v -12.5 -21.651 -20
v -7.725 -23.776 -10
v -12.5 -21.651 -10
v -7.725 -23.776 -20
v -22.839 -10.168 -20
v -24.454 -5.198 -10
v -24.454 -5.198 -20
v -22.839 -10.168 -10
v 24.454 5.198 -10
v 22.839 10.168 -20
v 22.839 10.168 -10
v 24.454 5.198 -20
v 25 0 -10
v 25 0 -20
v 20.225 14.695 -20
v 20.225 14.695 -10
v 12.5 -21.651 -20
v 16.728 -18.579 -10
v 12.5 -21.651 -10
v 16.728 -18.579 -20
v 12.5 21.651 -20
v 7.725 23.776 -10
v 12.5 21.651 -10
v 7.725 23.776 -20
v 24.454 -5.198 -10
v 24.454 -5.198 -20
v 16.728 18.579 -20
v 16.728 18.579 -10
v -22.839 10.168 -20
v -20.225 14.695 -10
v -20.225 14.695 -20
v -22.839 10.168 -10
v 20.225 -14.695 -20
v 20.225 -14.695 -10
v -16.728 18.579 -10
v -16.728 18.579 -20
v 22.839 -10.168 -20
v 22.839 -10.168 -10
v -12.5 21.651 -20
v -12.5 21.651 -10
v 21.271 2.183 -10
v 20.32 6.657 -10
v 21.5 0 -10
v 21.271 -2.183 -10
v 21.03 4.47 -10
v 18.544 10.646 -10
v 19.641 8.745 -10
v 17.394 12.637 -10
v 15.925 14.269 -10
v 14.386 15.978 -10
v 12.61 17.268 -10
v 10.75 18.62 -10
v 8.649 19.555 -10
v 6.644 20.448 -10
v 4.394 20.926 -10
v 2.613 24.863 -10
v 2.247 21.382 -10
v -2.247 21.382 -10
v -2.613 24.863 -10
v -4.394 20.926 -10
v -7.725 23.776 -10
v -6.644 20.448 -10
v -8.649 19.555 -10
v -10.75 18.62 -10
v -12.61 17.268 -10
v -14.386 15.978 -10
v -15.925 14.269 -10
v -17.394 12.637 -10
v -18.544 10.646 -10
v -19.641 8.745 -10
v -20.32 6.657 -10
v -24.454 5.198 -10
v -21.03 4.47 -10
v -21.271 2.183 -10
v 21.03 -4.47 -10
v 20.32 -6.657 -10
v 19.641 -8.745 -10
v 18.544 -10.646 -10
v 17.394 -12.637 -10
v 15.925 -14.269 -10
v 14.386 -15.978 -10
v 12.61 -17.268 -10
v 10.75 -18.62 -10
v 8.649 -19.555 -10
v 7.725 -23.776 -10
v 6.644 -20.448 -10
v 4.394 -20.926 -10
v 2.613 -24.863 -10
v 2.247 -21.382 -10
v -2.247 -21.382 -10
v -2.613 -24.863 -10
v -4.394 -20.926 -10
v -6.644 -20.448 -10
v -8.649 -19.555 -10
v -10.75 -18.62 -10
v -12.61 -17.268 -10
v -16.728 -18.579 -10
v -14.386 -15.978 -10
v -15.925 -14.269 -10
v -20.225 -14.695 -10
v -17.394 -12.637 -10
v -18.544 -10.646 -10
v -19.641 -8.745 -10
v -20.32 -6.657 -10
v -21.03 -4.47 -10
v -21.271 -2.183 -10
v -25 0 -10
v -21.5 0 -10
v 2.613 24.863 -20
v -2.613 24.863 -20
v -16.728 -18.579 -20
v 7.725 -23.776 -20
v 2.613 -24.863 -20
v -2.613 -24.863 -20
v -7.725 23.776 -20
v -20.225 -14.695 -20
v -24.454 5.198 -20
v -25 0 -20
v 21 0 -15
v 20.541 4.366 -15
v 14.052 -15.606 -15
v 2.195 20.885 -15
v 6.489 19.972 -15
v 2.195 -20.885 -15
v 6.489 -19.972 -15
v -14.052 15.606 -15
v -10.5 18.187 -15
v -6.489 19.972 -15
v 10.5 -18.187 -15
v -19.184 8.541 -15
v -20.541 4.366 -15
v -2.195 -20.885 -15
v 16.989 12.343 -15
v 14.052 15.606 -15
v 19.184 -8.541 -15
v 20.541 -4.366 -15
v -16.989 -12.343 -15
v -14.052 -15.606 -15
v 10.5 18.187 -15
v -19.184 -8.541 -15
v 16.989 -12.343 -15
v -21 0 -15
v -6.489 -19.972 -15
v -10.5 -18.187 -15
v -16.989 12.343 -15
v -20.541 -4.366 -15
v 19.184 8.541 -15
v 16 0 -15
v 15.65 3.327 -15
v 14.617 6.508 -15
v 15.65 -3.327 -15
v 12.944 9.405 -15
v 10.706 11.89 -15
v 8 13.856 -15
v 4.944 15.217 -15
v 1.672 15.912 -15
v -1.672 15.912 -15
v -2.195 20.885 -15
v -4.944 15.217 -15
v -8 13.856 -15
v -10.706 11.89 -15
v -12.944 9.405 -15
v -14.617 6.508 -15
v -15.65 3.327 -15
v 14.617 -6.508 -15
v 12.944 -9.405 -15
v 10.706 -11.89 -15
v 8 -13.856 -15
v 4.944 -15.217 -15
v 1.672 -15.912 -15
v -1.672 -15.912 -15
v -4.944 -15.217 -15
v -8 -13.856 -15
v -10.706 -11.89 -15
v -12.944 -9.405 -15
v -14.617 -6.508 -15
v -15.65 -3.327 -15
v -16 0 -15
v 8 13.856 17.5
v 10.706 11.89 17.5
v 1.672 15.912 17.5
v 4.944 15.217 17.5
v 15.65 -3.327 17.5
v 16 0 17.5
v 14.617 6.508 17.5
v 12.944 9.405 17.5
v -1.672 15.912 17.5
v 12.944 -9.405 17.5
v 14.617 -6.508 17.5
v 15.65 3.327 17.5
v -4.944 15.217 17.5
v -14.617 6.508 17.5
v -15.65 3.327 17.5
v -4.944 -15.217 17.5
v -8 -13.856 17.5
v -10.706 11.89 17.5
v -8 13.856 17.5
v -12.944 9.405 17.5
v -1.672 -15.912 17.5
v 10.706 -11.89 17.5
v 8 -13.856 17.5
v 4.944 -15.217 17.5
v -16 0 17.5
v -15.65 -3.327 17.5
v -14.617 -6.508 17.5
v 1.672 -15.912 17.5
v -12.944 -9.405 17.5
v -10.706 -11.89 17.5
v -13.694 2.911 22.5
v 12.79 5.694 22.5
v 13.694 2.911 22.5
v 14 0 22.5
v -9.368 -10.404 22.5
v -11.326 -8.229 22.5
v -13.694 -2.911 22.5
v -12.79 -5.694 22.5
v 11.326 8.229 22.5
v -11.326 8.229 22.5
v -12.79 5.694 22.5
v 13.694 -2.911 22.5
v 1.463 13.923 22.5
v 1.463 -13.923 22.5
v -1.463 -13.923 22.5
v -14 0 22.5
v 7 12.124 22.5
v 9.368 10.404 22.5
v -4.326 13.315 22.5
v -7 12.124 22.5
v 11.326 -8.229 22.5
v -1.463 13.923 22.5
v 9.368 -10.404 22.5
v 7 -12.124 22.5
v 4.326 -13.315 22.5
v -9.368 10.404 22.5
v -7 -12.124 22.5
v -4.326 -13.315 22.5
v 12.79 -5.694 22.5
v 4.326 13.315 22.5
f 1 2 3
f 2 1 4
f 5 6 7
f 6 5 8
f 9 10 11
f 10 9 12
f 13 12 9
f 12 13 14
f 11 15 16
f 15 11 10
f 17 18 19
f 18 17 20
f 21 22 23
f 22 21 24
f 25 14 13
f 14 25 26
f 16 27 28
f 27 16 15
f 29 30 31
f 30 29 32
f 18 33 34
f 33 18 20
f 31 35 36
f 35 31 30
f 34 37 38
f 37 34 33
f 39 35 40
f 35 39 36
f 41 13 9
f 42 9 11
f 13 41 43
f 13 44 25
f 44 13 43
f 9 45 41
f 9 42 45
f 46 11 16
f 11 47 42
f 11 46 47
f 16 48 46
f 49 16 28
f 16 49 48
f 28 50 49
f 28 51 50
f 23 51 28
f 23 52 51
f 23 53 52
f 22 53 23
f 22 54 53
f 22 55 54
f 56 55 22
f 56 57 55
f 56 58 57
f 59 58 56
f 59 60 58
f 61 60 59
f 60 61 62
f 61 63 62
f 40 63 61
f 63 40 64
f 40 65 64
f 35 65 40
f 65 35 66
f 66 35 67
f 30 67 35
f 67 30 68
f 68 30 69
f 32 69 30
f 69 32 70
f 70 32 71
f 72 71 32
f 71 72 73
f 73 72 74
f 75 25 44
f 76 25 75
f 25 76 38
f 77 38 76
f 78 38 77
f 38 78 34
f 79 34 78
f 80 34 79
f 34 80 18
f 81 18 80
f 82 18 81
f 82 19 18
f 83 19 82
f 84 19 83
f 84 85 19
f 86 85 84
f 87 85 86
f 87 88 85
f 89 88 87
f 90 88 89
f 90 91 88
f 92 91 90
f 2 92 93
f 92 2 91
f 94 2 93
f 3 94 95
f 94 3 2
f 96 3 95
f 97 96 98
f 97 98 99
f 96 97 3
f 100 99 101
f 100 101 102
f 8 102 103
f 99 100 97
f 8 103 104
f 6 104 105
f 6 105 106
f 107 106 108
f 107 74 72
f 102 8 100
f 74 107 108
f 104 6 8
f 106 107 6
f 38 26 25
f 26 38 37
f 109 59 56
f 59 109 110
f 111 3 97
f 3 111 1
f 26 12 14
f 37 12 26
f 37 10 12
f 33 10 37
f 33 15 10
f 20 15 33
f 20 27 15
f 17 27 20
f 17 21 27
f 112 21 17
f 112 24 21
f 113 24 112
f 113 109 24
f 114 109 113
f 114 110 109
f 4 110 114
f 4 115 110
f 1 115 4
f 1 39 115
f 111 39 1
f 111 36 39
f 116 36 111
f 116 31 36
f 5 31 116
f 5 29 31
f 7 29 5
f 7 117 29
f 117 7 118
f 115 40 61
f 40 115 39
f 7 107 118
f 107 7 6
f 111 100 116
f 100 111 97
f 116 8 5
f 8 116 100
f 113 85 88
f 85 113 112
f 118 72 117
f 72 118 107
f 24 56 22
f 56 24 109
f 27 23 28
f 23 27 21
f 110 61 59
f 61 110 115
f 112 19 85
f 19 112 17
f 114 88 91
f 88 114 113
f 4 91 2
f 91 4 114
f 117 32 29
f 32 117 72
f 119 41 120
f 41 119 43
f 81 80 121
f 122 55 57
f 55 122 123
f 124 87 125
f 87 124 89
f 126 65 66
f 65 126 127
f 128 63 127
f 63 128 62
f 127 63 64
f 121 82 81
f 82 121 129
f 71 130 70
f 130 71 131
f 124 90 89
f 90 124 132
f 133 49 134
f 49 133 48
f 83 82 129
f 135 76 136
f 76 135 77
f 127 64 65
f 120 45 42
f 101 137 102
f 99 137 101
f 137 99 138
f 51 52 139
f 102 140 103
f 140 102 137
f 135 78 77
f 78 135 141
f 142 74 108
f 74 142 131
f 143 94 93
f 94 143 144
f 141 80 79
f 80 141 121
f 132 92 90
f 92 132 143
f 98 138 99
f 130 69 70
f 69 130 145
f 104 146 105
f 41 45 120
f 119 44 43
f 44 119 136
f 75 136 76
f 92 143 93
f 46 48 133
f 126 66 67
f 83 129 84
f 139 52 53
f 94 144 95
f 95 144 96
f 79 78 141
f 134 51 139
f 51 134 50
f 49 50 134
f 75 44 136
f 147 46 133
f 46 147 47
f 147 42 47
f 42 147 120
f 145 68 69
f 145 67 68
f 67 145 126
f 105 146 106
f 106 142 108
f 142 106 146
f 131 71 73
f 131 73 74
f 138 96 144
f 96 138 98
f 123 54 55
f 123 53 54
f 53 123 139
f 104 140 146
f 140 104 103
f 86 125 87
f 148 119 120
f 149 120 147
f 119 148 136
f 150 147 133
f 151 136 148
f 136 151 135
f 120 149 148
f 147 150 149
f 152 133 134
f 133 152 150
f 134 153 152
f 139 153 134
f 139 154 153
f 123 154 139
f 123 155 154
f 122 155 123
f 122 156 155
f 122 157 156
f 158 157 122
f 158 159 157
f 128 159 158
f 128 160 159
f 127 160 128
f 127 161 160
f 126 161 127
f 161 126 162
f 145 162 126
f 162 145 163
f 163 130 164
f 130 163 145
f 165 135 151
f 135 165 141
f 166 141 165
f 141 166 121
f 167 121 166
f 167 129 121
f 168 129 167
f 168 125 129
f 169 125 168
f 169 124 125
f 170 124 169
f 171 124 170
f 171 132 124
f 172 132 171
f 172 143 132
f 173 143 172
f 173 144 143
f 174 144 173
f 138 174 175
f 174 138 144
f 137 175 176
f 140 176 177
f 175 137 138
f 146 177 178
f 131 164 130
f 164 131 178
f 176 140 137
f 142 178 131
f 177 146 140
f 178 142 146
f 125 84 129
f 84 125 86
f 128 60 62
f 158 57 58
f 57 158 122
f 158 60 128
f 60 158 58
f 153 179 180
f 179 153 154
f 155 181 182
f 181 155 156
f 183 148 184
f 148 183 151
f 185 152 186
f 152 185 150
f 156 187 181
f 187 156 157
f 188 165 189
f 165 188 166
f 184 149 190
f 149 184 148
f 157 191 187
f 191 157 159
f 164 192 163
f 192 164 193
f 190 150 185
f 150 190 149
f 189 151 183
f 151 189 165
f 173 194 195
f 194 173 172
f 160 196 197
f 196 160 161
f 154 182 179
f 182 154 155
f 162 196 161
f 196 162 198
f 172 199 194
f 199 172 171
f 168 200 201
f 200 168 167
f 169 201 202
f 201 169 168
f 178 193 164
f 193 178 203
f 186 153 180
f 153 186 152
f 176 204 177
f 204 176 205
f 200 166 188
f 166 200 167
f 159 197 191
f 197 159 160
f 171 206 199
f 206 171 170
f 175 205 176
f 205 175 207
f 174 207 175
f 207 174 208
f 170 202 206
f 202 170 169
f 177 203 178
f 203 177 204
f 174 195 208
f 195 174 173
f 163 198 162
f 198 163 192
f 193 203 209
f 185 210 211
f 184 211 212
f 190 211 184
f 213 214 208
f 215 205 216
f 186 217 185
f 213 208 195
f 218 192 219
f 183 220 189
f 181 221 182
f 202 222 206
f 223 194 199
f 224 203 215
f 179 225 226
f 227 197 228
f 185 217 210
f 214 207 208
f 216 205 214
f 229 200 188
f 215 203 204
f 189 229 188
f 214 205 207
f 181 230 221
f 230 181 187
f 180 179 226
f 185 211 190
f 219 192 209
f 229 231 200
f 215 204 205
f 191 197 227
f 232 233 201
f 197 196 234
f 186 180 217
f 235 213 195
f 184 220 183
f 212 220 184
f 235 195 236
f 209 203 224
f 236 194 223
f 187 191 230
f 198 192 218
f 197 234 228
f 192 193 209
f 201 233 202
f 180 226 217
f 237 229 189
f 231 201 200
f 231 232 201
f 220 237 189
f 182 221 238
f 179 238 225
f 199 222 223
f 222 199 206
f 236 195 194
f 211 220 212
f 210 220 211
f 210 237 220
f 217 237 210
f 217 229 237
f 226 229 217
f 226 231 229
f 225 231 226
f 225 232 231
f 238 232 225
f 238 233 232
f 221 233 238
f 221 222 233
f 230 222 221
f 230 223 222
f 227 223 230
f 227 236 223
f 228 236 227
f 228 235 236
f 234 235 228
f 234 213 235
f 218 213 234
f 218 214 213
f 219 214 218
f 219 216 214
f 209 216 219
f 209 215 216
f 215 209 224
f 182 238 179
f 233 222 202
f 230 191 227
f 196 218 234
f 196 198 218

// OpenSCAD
cylinder(35,16,16, true);
translate([0,0,20])cylinder(5,16,14, true);

difference(){
    translate([0,0,-15])cylinder(10,25,25, true);
    translate([0,0,-10])cylinder(10,21,22, true);
    //translate([0,0,-10])cylinder(10,20,20, true);
}
